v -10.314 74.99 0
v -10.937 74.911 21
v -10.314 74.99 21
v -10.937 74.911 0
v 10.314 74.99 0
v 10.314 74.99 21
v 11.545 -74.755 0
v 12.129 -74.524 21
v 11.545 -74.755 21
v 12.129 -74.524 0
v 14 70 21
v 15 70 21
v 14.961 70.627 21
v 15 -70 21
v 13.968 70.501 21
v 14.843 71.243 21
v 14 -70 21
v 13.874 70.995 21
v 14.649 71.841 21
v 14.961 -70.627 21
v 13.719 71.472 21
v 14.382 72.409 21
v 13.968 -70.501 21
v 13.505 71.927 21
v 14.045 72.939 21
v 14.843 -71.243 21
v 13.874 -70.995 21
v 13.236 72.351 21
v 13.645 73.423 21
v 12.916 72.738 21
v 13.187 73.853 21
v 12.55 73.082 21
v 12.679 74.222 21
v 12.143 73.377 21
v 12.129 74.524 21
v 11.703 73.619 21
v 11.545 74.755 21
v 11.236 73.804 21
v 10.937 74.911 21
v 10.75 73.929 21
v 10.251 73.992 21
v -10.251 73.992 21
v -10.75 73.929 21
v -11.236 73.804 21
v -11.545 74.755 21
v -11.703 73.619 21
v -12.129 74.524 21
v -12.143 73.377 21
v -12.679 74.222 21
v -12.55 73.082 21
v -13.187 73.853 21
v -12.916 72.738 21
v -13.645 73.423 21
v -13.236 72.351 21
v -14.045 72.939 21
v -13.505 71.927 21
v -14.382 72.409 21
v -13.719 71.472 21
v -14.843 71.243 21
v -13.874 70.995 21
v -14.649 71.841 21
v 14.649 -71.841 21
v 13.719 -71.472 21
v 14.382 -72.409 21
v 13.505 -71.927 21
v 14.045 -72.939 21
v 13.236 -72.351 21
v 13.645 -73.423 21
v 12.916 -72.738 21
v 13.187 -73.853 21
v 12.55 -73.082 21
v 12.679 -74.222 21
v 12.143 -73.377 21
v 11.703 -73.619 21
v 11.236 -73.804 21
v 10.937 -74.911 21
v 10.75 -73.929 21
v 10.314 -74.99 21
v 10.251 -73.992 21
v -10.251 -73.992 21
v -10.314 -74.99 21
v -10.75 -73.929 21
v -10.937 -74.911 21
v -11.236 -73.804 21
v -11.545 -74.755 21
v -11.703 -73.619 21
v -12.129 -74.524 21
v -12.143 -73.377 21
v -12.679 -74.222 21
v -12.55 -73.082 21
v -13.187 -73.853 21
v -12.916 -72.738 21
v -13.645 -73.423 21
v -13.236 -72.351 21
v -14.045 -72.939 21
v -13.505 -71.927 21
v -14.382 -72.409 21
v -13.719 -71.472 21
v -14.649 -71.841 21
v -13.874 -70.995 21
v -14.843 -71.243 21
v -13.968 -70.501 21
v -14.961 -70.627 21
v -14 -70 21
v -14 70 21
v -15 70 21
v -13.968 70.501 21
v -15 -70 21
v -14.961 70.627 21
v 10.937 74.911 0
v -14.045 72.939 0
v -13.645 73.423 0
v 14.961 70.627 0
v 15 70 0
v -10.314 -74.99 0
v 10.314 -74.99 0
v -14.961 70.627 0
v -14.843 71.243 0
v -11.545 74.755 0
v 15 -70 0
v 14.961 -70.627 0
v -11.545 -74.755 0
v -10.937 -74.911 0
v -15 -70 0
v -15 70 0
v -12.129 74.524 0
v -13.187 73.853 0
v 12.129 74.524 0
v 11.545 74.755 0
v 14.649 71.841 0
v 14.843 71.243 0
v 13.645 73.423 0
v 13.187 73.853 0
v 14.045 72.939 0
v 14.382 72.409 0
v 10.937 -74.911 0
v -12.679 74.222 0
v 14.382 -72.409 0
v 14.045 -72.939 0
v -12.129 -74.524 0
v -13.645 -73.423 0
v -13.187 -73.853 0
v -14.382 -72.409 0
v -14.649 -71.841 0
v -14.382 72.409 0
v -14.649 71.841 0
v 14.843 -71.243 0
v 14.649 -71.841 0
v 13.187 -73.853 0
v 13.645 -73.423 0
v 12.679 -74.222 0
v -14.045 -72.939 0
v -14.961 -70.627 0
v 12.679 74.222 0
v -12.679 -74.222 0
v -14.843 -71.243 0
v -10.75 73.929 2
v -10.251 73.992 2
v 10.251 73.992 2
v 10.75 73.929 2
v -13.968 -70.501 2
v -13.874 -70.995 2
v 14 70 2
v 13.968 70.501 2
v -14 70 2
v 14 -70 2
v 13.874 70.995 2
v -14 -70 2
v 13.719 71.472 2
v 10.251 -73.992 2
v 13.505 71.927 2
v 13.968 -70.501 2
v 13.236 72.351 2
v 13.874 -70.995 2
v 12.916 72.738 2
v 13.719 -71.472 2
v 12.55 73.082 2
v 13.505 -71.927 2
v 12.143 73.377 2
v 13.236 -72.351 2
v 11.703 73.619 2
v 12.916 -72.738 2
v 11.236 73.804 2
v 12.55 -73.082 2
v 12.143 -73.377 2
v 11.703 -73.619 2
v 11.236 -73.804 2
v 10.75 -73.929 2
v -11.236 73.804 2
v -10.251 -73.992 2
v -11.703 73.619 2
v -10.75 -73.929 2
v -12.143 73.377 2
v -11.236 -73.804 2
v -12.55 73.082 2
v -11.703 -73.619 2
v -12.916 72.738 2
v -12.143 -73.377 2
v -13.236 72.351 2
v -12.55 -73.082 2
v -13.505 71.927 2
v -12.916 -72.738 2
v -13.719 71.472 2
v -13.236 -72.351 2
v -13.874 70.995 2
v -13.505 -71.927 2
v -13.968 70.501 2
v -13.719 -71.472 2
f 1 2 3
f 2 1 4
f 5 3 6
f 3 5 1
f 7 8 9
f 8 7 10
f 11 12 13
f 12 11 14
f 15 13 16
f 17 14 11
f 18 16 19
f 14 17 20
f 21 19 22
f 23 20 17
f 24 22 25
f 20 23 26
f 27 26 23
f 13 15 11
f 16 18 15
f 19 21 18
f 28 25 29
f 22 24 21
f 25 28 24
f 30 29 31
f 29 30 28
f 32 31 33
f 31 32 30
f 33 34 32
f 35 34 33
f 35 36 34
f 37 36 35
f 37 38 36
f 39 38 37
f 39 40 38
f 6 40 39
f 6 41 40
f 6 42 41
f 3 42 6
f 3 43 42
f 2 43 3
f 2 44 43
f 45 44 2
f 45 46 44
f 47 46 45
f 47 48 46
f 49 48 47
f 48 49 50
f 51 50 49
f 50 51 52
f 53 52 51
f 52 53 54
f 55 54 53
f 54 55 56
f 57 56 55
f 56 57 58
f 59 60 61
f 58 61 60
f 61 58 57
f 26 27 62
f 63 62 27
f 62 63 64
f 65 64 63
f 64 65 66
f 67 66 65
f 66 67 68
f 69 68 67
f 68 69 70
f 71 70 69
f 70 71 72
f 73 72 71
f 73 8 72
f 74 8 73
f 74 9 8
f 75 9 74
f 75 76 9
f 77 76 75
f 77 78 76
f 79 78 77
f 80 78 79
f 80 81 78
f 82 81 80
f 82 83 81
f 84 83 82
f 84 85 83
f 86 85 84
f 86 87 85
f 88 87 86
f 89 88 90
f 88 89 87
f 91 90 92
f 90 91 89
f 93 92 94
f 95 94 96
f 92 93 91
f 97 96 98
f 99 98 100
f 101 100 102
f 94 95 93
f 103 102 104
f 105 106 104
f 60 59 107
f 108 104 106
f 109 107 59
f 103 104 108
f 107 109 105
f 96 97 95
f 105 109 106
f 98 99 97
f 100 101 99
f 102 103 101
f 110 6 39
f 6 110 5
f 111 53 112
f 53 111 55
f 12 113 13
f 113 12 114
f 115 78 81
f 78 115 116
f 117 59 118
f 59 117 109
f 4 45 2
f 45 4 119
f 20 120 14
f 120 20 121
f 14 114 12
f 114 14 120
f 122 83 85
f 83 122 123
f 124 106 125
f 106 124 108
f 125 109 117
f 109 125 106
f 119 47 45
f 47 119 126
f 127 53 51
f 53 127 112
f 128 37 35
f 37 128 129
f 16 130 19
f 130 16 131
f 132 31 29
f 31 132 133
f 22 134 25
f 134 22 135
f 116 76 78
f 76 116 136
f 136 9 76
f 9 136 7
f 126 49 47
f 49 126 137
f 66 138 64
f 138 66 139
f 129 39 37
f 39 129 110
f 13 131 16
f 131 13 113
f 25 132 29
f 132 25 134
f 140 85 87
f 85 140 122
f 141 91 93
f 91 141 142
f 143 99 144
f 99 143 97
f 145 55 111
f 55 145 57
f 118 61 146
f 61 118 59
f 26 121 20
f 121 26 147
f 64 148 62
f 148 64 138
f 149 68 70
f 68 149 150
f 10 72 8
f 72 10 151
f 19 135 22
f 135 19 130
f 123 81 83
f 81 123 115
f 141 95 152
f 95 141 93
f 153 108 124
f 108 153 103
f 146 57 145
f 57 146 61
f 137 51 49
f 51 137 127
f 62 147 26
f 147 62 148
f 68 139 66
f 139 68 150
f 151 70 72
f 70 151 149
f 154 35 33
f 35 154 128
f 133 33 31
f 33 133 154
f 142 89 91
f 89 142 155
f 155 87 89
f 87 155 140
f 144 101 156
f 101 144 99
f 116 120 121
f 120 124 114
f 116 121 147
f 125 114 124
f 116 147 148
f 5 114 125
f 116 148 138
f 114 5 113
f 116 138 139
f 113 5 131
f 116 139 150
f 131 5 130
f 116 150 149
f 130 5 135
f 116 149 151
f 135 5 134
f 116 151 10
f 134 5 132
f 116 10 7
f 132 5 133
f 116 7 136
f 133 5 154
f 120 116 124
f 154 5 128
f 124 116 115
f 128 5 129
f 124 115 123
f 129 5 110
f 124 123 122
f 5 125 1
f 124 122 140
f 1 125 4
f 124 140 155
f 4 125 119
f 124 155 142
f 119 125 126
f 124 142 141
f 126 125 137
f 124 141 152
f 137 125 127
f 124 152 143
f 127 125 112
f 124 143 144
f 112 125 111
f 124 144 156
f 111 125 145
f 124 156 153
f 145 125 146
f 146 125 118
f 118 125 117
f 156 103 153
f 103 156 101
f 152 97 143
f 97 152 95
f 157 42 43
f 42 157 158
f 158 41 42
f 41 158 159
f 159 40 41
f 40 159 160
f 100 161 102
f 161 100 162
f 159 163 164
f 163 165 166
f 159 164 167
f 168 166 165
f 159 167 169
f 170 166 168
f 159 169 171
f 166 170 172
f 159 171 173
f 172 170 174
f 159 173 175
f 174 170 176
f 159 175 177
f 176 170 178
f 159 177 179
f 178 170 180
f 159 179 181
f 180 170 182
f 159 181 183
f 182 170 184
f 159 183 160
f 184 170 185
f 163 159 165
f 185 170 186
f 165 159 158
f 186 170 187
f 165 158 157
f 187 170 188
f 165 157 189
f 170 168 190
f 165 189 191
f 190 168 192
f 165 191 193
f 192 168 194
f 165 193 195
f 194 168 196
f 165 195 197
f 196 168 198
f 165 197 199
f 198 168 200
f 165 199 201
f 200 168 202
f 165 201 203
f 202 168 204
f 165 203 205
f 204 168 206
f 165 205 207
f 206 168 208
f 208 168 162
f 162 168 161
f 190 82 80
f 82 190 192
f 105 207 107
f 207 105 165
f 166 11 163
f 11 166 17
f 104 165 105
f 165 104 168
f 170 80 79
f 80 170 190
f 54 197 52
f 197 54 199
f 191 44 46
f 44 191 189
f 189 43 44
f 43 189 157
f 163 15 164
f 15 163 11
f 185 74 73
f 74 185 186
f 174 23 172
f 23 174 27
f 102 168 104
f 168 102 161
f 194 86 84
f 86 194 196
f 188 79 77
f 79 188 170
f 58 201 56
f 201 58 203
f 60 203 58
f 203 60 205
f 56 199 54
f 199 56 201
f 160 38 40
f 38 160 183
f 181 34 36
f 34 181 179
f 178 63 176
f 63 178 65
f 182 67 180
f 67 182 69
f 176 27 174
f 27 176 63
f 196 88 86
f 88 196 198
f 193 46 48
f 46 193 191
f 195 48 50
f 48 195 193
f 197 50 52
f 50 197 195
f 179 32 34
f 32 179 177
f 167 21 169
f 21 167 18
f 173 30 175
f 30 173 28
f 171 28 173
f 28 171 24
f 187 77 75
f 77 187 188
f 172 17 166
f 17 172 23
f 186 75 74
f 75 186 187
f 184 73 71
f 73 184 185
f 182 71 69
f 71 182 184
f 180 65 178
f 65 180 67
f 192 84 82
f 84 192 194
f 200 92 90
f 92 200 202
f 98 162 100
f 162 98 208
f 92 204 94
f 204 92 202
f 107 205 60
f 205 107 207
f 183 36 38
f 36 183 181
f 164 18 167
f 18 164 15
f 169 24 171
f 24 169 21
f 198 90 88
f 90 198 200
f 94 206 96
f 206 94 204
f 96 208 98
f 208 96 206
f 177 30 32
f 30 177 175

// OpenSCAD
$fn = 50;


difference() {
	union() {
		hull() {
			translate(v = [-10.0000000000, 70.0000000000, 0]) {
				cylinder(h = 21, r = 5);
			}
			translate(v = [10.0000000000, 70.0000000000, 0]) {
				cylinder(h = 21, r = 5);
			}
			translate(v = [-10.0000000000, -70.0000000000, 0]) {
				cylinder(h = 21, r = 5);
			}
			translate(v = [10.0000000000, -70.0000000000, 0]) {
				cylinder(h = 21, r = 5);
			}
		}
	}
	union() {
		translate(v = [0, 0, 2]) {
			hull() {
				translate(v = [-10.0000000000, 70.0000000000, 0]) {
					cylinder(h = 19, r = 4);
				}
				translate(v = [10.0000000000, 70.0000000000, 0]) {
					cylinder(h = 19, r = 4);
				}
				translate(v = [-10.0000000000, -70.0000000000, 0]) {
					cylinder(h = 19, r = 4);
				}
				translate(v = [10.0000000000, -70.0000000000, 0]) {
					cylinder(h = 19, r = 4);
				}
			}
		}
	}
}
